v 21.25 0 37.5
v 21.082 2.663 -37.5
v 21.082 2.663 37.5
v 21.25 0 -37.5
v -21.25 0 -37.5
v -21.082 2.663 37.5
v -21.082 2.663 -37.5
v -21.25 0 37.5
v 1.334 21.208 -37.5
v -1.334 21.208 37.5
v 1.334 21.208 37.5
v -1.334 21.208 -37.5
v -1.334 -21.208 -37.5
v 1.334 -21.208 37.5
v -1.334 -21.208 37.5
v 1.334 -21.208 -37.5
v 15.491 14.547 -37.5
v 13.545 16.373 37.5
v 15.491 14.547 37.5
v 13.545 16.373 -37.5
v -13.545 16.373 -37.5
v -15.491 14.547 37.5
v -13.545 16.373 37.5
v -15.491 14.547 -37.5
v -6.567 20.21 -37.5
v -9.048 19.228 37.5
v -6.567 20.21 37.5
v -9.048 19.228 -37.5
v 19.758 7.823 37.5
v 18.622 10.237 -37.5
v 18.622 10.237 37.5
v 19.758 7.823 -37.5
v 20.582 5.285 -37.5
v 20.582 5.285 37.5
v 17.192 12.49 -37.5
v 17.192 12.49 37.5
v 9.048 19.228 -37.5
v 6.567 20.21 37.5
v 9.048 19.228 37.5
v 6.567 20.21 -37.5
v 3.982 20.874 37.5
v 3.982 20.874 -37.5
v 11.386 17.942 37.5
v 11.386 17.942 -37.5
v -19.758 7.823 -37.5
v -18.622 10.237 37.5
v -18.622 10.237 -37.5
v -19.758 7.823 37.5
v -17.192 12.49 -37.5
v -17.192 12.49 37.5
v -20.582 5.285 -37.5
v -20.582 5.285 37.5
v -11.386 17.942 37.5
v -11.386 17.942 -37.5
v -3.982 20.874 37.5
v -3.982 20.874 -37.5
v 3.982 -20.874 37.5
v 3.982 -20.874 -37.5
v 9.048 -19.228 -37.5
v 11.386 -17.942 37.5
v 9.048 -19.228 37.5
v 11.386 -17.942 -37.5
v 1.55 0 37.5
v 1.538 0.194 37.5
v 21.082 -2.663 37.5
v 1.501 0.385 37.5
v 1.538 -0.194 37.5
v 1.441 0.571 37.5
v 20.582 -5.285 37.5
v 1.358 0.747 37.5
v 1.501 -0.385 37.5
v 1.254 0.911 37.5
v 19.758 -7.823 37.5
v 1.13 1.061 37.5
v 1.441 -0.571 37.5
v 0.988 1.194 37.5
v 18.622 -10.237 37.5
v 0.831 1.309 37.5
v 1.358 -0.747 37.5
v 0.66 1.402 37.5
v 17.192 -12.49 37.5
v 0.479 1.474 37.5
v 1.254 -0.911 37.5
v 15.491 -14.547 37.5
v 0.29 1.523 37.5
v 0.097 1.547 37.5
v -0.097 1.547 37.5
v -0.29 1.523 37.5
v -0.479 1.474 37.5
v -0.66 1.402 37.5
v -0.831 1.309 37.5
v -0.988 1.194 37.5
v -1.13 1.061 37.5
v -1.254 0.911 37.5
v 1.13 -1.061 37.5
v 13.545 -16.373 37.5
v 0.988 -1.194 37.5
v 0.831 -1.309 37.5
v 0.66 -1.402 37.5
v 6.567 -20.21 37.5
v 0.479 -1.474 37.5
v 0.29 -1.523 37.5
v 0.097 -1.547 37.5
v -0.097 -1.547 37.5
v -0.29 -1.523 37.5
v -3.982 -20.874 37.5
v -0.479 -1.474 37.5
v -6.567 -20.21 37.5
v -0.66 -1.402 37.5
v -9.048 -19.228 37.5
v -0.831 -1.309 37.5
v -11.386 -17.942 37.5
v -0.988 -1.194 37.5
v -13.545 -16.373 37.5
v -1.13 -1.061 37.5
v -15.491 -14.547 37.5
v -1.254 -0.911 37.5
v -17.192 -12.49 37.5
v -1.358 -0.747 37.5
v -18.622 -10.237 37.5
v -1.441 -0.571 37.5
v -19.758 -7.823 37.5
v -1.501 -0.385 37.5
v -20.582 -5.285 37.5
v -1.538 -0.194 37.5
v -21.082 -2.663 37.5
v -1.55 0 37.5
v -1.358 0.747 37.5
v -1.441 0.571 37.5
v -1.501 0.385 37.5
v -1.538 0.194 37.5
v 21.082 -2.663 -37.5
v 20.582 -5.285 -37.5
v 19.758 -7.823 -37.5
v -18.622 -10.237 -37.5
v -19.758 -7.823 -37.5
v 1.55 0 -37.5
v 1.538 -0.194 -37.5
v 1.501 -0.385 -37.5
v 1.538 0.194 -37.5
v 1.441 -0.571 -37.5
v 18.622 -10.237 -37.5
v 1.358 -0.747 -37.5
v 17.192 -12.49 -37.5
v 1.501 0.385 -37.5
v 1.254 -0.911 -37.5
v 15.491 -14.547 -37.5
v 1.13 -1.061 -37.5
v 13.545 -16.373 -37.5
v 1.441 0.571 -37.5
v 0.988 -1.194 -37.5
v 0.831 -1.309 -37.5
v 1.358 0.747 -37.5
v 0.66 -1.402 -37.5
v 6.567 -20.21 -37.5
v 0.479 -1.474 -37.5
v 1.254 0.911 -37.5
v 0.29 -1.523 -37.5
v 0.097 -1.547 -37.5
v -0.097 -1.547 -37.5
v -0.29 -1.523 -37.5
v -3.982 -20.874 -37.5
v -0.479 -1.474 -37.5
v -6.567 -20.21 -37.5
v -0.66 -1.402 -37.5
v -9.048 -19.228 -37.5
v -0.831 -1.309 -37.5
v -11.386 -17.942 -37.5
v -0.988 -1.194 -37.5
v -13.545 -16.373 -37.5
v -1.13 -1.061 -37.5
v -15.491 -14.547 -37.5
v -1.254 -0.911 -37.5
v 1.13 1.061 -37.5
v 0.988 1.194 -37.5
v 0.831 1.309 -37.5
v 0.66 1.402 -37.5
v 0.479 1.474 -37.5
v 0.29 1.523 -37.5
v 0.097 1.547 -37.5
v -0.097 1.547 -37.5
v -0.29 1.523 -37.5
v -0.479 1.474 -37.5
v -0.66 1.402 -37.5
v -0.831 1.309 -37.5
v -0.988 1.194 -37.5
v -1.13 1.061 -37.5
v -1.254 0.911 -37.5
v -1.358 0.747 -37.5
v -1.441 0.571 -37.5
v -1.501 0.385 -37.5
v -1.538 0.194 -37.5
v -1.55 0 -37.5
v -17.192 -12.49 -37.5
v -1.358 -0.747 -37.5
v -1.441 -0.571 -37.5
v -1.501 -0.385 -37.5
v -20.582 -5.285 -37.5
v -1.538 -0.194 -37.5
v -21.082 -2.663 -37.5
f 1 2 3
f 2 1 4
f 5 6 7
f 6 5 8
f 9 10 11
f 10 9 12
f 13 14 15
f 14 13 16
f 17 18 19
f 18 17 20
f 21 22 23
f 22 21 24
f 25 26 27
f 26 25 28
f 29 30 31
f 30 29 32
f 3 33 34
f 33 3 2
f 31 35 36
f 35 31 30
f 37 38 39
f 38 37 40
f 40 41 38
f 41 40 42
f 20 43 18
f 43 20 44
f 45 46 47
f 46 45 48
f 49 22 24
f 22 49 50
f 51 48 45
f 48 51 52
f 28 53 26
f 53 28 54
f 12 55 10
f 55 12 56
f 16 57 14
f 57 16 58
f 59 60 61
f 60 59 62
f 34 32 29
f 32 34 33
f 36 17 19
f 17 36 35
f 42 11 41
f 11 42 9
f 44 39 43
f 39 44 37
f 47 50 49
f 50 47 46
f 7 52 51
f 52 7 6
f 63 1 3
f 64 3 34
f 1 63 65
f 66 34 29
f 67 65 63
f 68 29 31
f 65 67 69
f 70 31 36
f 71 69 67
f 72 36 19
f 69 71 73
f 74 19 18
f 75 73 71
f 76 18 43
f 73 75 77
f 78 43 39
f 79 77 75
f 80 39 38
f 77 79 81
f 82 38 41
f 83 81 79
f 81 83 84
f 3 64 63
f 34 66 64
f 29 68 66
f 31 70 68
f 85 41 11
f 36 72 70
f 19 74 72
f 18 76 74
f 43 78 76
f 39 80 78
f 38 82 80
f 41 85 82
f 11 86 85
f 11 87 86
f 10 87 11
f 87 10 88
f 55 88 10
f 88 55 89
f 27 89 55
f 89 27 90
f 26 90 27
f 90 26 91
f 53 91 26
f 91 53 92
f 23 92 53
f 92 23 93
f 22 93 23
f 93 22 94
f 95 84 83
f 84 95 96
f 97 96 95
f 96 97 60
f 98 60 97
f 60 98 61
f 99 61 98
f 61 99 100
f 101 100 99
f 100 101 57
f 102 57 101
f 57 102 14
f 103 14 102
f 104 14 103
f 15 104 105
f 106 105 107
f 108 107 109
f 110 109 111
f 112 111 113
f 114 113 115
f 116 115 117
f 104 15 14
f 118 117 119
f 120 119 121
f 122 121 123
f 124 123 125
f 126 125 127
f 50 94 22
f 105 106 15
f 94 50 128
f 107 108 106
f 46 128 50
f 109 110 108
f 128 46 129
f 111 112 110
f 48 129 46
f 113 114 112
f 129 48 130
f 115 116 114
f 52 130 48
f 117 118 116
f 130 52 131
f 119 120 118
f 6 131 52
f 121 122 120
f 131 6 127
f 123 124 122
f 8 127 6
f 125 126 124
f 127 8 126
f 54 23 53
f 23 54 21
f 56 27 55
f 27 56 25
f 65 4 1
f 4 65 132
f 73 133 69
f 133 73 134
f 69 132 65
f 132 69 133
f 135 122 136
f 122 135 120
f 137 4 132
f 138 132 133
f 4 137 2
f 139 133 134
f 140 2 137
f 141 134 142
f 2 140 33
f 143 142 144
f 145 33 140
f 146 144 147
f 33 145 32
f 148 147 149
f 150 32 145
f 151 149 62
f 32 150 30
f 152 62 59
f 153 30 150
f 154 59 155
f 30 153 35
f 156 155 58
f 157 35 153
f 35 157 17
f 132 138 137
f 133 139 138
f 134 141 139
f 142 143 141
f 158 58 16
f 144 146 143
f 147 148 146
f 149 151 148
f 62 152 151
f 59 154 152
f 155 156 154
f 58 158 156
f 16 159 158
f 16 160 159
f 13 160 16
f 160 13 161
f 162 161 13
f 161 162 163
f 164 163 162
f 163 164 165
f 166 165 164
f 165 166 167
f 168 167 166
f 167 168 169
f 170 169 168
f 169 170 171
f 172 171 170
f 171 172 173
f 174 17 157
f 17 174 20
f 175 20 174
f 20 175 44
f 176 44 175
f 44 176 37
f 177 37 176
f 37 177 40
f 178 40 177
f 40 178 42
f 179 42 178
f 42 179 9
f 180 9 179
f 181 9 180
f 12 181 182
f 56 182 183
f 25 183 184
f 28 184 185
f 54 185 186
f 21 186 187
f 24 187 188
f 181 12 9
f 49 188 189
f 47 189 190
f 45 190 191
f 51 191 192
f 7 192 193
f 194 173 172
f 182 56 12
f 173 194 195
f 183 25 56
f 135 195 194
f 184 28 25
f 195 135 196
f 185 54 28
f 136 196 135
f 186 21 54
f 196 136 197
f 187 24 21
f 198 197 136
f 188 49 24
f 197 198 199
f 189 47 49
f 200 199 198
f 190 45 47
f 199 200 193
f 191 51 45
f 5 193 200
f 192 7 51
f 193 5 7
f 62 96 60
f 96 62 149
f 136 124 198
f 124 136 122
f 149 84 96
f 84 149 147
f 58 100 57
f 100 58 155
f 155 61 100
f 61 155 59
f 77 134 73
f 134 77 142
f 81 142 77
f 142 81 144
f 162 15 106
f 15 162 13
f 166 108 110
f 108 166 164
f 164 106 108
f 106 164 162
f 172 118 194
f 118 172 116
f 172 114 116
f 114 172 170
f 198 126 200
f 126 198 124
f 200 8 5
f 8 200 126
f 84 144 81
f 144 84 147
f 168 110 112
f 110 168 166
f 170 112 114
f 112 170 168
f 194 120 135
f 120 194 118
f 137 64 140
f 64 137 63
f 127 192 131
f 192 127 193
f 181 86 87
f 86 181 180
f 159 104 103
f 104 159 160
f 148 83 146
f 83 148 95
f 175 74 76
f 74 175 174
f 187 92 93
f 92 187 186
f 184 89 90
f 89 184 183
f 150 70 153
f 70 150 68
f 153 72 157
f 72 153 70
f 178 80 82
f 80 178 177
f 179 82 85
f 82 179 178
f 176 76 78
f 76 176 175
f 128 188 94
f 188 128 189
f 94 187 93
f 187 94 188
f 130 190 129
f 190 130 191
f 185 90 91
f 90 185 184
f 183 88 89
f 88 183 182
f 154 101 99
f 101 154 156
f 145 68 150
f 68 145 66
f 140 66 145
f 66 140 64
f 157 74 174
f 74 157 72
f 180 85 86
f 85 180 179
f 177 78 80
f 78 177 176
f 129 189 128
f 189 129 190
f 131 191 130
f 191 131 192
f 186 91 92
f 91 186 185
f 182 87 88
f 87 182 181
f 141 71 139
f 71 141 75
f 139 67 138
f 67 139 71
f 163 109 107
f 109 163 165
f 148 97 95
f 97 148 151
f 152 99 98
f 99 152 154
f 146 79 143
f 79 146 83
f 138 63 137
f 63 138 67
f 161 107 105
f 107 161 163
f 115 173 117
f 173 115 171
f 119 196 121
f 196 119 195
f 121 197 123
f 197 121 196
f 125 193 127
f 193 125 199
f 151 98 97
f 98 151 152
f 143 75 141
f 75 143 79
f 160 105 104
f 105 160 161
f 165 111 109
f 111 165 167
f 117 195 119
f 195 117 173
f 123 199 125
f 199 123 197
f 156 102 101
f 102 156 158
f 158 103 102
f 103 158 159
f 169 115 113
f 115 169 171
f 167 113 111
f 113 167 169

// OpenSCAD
$fn = 50;


difference() {
	union() {
		translate(v = [0, 0, -37.5000000000]) {
			cylinder(h = 75, r = 21.2500000000);
		}
	}
	union() {
		translate(v = [0, 0, -100.0000000000]) {
			cylinder(h = 200, r = 1.5500000000);
		}
	}
}
